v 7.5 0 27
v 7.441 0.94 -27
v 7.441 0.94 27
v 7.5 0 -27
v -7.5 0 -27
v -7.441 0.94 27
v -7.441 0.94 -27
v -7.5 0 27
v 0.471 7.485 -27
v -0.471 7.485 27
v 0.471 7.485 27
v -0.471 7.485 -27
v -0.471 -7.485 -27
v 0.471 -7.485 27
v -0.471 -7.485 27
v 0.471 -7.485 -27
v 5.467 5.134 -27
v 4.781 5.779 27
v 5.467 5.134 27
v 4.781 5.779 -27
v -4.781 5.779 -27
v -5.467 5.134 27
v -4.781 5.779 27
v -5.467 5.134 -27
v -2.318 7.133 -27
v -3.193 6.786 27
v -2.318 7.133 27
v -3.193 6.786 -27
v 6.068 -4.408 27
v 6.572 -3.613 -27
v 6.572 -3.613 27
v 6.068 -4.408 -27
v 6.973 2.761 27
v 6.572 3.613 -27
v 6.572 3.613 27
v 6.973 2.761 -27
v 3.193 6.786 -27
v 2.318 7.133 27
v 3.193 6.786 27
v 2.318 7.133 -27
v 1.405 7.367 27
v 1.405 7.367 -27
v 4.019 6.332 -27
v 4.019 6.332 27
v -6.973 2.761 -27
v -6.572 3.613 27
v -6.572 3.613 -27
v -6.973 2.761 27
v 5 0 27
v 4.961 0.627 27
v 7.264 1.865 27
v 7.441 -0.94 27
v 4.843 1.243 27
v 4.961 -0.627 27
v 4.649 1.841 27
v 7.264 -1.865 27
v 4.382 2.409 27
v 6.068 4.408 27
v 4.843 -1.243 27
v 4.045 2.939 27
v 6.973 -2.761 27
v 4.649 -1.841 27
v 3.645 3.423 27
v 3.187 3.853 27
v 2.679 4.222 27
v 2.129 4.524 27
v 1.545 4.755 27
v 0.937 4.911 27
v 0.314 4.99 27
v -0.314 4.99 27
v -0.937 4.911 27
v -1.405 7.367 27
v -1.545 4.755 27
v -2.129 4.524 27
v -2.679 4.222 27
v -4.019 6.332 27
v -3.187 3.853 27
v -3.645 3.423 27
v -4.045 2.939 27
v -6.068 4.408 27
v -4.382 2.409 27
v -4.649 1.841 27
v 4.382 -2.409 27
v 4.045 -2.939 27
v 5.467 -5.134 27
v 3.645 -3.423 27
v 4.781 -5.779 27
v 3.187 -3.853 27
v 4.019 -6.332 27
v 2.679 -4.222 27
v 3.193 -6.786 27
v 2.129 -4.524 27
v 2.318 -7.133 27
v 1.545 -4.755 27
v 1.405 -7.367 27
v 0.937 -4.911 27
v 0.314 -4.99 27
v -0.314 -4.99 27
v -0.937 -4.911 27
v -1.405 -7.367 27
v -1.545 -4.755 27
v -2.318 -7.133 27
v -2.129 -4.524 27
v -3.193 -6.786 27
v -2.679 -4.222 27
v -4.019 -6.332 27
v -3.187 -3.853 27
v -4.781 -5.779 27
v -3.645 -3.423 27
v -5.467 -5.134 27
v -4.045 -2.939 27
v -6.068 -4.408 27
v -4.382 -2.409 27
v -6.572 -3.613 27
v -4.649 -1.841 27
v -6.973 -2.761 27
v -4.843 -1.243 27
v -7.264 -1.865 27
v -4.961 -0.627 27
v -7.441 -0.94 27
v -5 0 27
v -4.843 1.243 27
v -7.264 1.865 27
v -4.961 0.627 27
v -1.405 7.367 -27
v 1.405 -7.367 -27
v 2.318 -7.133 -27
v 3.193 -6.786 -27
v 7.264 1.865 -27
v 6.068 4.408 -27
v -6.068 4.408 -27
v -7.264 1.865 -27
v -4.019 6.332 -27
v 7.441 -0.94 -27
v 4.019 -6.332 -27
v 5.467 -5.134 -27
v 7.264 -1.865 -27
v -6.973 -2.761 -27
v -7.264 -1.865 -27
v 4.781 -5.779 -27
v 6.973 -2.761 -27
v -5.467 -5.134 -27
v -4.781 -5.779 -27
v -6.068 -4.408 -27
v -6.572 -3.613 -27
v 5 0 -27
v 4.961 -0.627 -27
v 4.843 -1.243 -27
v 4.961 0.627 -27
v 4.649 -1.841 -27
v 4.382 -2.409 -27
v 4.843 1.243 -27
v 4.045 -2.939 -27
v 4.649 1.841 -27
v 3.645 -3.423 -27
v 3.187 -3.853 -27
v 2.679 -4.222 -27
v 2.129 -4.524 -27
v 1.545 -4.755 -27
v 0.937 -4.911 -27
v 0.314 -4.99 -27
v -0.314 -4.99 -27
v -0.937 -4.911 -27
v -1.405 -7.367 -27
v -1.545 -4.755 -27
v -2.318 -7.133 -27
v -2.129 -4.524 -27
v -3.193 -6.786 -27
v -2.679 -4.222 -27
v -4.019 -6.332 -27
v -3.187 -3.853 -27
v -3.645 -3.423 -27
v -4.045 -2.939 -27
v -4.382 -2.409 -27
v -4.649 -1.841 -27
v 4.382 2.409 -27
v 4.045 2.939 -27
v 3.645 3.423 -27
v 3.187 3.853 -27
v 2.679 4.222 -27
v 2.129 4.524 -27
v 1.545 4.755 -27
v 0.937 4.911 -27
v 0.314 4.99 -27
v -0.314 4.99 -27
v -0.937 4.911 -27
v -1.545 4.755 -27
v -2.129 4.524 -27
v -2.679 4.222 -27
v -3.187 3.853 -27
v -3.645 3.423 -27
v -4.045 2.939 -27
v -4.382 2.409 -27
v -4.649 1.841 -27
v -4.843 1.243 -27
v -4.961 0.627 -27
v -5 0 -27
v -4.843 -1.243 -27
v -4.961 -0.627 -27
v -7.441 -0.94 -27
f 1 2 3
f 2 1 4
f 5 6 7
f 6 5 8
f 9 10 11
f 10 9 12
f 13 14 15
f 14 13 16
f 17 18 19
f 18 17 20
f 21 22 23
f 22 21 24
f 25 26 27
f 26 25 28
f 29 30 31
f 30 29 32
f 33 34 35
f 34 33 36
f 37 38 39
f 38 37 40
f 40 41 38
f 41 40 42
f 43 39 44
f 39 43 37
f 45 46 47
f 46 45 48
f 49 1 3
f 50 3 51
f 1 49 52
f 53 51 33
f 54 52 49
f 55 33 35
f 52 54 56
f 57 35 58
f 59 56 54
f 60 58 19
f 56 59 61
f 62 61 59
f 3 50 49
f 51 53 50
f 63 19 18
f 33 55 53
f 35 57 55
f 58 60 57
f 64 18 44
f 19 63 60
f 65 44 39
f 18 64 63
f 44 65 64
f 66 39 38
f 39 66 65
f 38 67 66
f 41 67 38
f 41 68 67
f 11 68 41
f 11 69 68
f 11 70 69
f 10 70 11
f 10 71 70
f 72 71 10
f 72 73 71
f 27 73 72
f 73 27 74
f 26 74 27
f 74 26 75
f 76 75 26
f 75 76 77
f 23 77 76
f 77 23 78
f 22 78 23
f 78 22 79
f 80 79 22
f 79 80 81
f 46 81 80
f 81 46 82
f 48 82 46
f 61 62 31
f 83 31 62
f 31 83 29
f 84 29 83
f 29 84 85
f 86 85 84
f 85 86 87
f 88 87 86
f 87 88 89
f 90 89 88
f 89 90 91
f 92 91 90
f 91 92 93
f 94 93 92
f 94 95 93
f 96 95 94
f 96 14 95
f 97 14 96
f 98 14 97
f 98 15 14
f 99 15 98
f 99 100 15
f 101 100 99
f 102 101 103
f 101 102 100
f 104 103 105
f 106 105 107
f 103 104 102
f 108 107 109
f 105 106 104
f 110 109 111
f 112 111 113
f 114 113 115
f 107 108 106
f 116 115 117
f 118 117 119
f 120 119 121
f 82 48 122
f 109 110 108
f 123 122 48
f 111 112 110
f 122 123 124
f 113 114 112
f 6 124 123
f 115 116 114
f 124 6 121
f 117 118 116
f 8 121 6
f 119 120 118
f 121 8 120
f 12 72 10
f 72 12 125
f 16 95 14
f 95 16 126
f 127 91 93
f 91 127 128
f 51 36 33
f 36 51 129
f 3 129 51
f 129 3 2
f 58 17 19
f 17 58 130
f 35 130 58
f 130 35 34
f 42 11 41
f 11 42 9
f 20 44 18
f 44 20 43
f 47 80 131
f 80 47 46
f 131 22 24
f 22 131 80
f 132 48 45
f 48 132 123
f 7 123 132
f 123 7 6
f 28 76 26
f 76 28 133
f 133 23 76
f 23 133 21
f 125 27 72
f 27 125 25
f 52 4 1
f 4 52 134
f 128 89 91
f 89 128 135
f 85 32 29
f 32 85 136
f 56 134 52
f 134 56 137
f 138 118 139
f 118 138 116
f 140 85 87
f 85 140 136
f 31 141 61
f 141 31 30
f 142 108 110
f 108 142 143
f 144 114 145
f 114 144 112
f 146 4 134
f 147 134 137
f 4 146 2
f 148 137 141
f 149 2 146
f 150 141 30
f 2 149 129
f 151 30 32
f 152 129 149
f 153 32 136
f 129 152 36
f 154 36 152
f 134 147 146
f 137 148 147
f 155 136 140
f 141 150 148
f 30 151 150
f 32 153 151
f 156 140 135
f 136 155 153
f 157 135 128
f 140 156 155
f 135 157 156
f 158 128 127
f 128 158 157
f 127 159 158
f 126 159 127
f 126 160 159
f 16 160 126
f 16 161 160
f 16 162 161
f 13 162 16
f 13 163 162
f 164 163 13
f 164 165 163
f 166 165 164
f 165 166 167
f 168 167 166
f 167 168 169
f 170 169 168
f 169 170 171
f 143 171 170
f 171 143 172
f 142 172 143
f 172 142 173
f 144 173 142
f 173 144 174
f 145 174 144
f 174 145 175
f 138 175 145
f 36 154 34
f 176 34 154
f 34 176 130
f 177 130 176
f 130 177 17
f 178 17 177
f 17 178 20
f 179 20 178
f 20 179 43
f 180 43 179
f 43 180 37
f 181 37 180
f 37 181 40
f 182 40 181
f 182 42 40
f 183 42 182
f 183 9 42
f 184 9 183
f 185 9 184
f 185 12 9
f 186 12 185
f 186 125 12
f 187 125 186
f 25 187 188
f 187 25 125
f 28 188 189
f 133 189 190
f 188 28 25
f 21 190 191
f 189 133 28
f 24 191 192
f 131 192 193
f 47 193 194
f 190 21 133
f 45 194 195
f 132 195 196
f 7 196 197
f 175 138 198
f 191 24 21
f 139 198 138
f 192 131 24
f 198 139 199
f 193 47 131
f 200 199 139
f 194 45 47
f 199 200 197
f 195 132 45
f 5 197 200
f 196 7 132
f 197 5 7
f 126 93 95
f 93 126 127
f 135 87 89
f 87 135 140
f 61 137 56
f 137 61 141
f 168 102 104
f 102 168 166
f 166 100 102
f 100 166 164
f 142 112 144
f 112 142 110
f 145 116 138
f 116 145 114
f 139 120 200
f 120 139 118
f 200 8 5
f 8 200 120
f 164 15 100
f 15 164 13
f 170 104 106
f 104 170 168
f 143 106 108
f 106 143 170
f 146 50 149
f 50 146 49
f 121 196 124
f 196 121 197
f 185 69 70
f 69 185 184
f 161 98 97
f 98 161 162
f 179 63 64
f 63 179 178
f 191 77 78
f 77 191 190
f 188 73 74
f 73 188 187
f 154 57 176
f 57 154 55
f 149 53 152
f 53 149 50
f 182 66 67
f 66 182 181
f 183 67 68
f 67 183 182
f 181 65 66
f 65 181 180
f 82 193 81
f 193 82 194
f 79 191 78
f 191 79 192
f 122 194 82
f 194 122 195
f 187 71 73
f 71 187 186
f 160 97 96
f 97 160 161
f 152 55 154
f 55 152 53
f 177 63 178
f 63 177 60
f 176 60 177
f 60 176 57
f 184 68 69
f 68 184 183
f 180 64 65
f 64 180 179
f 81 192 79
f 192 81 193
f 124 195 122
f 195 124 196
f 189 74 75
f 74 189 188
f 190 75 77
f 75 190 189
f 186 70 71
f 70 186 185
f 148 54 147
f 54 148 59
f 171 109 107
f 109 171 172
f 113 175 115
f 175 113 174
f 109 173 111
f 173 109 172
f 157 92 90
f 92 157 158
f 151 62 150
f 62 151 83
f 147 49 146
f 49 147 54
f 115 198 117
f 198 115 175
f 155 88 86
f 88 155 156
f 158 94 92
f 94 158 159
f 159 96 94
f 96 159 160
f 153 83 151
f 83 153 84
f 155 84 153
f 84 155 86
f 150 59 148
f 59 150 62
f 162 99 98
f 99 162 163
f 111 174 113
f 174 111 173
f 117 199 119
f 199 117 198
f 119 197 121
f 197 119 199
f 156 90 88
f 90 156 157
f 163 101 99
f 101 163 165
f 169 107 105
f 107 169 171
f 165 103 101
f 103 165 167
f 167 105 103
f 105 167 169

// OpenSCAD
$fn = 50;


difference() {
	union() {
		translate(v = [0, 0, -27.0000000000]) {
			cylinder(h = 54, r = 7.5000000000);
		}
	}
	union() {
		translate(v = [0, 0, -100.0000000000]) {
			cylinder(h = 200, r = 5);
		}
	}
}
